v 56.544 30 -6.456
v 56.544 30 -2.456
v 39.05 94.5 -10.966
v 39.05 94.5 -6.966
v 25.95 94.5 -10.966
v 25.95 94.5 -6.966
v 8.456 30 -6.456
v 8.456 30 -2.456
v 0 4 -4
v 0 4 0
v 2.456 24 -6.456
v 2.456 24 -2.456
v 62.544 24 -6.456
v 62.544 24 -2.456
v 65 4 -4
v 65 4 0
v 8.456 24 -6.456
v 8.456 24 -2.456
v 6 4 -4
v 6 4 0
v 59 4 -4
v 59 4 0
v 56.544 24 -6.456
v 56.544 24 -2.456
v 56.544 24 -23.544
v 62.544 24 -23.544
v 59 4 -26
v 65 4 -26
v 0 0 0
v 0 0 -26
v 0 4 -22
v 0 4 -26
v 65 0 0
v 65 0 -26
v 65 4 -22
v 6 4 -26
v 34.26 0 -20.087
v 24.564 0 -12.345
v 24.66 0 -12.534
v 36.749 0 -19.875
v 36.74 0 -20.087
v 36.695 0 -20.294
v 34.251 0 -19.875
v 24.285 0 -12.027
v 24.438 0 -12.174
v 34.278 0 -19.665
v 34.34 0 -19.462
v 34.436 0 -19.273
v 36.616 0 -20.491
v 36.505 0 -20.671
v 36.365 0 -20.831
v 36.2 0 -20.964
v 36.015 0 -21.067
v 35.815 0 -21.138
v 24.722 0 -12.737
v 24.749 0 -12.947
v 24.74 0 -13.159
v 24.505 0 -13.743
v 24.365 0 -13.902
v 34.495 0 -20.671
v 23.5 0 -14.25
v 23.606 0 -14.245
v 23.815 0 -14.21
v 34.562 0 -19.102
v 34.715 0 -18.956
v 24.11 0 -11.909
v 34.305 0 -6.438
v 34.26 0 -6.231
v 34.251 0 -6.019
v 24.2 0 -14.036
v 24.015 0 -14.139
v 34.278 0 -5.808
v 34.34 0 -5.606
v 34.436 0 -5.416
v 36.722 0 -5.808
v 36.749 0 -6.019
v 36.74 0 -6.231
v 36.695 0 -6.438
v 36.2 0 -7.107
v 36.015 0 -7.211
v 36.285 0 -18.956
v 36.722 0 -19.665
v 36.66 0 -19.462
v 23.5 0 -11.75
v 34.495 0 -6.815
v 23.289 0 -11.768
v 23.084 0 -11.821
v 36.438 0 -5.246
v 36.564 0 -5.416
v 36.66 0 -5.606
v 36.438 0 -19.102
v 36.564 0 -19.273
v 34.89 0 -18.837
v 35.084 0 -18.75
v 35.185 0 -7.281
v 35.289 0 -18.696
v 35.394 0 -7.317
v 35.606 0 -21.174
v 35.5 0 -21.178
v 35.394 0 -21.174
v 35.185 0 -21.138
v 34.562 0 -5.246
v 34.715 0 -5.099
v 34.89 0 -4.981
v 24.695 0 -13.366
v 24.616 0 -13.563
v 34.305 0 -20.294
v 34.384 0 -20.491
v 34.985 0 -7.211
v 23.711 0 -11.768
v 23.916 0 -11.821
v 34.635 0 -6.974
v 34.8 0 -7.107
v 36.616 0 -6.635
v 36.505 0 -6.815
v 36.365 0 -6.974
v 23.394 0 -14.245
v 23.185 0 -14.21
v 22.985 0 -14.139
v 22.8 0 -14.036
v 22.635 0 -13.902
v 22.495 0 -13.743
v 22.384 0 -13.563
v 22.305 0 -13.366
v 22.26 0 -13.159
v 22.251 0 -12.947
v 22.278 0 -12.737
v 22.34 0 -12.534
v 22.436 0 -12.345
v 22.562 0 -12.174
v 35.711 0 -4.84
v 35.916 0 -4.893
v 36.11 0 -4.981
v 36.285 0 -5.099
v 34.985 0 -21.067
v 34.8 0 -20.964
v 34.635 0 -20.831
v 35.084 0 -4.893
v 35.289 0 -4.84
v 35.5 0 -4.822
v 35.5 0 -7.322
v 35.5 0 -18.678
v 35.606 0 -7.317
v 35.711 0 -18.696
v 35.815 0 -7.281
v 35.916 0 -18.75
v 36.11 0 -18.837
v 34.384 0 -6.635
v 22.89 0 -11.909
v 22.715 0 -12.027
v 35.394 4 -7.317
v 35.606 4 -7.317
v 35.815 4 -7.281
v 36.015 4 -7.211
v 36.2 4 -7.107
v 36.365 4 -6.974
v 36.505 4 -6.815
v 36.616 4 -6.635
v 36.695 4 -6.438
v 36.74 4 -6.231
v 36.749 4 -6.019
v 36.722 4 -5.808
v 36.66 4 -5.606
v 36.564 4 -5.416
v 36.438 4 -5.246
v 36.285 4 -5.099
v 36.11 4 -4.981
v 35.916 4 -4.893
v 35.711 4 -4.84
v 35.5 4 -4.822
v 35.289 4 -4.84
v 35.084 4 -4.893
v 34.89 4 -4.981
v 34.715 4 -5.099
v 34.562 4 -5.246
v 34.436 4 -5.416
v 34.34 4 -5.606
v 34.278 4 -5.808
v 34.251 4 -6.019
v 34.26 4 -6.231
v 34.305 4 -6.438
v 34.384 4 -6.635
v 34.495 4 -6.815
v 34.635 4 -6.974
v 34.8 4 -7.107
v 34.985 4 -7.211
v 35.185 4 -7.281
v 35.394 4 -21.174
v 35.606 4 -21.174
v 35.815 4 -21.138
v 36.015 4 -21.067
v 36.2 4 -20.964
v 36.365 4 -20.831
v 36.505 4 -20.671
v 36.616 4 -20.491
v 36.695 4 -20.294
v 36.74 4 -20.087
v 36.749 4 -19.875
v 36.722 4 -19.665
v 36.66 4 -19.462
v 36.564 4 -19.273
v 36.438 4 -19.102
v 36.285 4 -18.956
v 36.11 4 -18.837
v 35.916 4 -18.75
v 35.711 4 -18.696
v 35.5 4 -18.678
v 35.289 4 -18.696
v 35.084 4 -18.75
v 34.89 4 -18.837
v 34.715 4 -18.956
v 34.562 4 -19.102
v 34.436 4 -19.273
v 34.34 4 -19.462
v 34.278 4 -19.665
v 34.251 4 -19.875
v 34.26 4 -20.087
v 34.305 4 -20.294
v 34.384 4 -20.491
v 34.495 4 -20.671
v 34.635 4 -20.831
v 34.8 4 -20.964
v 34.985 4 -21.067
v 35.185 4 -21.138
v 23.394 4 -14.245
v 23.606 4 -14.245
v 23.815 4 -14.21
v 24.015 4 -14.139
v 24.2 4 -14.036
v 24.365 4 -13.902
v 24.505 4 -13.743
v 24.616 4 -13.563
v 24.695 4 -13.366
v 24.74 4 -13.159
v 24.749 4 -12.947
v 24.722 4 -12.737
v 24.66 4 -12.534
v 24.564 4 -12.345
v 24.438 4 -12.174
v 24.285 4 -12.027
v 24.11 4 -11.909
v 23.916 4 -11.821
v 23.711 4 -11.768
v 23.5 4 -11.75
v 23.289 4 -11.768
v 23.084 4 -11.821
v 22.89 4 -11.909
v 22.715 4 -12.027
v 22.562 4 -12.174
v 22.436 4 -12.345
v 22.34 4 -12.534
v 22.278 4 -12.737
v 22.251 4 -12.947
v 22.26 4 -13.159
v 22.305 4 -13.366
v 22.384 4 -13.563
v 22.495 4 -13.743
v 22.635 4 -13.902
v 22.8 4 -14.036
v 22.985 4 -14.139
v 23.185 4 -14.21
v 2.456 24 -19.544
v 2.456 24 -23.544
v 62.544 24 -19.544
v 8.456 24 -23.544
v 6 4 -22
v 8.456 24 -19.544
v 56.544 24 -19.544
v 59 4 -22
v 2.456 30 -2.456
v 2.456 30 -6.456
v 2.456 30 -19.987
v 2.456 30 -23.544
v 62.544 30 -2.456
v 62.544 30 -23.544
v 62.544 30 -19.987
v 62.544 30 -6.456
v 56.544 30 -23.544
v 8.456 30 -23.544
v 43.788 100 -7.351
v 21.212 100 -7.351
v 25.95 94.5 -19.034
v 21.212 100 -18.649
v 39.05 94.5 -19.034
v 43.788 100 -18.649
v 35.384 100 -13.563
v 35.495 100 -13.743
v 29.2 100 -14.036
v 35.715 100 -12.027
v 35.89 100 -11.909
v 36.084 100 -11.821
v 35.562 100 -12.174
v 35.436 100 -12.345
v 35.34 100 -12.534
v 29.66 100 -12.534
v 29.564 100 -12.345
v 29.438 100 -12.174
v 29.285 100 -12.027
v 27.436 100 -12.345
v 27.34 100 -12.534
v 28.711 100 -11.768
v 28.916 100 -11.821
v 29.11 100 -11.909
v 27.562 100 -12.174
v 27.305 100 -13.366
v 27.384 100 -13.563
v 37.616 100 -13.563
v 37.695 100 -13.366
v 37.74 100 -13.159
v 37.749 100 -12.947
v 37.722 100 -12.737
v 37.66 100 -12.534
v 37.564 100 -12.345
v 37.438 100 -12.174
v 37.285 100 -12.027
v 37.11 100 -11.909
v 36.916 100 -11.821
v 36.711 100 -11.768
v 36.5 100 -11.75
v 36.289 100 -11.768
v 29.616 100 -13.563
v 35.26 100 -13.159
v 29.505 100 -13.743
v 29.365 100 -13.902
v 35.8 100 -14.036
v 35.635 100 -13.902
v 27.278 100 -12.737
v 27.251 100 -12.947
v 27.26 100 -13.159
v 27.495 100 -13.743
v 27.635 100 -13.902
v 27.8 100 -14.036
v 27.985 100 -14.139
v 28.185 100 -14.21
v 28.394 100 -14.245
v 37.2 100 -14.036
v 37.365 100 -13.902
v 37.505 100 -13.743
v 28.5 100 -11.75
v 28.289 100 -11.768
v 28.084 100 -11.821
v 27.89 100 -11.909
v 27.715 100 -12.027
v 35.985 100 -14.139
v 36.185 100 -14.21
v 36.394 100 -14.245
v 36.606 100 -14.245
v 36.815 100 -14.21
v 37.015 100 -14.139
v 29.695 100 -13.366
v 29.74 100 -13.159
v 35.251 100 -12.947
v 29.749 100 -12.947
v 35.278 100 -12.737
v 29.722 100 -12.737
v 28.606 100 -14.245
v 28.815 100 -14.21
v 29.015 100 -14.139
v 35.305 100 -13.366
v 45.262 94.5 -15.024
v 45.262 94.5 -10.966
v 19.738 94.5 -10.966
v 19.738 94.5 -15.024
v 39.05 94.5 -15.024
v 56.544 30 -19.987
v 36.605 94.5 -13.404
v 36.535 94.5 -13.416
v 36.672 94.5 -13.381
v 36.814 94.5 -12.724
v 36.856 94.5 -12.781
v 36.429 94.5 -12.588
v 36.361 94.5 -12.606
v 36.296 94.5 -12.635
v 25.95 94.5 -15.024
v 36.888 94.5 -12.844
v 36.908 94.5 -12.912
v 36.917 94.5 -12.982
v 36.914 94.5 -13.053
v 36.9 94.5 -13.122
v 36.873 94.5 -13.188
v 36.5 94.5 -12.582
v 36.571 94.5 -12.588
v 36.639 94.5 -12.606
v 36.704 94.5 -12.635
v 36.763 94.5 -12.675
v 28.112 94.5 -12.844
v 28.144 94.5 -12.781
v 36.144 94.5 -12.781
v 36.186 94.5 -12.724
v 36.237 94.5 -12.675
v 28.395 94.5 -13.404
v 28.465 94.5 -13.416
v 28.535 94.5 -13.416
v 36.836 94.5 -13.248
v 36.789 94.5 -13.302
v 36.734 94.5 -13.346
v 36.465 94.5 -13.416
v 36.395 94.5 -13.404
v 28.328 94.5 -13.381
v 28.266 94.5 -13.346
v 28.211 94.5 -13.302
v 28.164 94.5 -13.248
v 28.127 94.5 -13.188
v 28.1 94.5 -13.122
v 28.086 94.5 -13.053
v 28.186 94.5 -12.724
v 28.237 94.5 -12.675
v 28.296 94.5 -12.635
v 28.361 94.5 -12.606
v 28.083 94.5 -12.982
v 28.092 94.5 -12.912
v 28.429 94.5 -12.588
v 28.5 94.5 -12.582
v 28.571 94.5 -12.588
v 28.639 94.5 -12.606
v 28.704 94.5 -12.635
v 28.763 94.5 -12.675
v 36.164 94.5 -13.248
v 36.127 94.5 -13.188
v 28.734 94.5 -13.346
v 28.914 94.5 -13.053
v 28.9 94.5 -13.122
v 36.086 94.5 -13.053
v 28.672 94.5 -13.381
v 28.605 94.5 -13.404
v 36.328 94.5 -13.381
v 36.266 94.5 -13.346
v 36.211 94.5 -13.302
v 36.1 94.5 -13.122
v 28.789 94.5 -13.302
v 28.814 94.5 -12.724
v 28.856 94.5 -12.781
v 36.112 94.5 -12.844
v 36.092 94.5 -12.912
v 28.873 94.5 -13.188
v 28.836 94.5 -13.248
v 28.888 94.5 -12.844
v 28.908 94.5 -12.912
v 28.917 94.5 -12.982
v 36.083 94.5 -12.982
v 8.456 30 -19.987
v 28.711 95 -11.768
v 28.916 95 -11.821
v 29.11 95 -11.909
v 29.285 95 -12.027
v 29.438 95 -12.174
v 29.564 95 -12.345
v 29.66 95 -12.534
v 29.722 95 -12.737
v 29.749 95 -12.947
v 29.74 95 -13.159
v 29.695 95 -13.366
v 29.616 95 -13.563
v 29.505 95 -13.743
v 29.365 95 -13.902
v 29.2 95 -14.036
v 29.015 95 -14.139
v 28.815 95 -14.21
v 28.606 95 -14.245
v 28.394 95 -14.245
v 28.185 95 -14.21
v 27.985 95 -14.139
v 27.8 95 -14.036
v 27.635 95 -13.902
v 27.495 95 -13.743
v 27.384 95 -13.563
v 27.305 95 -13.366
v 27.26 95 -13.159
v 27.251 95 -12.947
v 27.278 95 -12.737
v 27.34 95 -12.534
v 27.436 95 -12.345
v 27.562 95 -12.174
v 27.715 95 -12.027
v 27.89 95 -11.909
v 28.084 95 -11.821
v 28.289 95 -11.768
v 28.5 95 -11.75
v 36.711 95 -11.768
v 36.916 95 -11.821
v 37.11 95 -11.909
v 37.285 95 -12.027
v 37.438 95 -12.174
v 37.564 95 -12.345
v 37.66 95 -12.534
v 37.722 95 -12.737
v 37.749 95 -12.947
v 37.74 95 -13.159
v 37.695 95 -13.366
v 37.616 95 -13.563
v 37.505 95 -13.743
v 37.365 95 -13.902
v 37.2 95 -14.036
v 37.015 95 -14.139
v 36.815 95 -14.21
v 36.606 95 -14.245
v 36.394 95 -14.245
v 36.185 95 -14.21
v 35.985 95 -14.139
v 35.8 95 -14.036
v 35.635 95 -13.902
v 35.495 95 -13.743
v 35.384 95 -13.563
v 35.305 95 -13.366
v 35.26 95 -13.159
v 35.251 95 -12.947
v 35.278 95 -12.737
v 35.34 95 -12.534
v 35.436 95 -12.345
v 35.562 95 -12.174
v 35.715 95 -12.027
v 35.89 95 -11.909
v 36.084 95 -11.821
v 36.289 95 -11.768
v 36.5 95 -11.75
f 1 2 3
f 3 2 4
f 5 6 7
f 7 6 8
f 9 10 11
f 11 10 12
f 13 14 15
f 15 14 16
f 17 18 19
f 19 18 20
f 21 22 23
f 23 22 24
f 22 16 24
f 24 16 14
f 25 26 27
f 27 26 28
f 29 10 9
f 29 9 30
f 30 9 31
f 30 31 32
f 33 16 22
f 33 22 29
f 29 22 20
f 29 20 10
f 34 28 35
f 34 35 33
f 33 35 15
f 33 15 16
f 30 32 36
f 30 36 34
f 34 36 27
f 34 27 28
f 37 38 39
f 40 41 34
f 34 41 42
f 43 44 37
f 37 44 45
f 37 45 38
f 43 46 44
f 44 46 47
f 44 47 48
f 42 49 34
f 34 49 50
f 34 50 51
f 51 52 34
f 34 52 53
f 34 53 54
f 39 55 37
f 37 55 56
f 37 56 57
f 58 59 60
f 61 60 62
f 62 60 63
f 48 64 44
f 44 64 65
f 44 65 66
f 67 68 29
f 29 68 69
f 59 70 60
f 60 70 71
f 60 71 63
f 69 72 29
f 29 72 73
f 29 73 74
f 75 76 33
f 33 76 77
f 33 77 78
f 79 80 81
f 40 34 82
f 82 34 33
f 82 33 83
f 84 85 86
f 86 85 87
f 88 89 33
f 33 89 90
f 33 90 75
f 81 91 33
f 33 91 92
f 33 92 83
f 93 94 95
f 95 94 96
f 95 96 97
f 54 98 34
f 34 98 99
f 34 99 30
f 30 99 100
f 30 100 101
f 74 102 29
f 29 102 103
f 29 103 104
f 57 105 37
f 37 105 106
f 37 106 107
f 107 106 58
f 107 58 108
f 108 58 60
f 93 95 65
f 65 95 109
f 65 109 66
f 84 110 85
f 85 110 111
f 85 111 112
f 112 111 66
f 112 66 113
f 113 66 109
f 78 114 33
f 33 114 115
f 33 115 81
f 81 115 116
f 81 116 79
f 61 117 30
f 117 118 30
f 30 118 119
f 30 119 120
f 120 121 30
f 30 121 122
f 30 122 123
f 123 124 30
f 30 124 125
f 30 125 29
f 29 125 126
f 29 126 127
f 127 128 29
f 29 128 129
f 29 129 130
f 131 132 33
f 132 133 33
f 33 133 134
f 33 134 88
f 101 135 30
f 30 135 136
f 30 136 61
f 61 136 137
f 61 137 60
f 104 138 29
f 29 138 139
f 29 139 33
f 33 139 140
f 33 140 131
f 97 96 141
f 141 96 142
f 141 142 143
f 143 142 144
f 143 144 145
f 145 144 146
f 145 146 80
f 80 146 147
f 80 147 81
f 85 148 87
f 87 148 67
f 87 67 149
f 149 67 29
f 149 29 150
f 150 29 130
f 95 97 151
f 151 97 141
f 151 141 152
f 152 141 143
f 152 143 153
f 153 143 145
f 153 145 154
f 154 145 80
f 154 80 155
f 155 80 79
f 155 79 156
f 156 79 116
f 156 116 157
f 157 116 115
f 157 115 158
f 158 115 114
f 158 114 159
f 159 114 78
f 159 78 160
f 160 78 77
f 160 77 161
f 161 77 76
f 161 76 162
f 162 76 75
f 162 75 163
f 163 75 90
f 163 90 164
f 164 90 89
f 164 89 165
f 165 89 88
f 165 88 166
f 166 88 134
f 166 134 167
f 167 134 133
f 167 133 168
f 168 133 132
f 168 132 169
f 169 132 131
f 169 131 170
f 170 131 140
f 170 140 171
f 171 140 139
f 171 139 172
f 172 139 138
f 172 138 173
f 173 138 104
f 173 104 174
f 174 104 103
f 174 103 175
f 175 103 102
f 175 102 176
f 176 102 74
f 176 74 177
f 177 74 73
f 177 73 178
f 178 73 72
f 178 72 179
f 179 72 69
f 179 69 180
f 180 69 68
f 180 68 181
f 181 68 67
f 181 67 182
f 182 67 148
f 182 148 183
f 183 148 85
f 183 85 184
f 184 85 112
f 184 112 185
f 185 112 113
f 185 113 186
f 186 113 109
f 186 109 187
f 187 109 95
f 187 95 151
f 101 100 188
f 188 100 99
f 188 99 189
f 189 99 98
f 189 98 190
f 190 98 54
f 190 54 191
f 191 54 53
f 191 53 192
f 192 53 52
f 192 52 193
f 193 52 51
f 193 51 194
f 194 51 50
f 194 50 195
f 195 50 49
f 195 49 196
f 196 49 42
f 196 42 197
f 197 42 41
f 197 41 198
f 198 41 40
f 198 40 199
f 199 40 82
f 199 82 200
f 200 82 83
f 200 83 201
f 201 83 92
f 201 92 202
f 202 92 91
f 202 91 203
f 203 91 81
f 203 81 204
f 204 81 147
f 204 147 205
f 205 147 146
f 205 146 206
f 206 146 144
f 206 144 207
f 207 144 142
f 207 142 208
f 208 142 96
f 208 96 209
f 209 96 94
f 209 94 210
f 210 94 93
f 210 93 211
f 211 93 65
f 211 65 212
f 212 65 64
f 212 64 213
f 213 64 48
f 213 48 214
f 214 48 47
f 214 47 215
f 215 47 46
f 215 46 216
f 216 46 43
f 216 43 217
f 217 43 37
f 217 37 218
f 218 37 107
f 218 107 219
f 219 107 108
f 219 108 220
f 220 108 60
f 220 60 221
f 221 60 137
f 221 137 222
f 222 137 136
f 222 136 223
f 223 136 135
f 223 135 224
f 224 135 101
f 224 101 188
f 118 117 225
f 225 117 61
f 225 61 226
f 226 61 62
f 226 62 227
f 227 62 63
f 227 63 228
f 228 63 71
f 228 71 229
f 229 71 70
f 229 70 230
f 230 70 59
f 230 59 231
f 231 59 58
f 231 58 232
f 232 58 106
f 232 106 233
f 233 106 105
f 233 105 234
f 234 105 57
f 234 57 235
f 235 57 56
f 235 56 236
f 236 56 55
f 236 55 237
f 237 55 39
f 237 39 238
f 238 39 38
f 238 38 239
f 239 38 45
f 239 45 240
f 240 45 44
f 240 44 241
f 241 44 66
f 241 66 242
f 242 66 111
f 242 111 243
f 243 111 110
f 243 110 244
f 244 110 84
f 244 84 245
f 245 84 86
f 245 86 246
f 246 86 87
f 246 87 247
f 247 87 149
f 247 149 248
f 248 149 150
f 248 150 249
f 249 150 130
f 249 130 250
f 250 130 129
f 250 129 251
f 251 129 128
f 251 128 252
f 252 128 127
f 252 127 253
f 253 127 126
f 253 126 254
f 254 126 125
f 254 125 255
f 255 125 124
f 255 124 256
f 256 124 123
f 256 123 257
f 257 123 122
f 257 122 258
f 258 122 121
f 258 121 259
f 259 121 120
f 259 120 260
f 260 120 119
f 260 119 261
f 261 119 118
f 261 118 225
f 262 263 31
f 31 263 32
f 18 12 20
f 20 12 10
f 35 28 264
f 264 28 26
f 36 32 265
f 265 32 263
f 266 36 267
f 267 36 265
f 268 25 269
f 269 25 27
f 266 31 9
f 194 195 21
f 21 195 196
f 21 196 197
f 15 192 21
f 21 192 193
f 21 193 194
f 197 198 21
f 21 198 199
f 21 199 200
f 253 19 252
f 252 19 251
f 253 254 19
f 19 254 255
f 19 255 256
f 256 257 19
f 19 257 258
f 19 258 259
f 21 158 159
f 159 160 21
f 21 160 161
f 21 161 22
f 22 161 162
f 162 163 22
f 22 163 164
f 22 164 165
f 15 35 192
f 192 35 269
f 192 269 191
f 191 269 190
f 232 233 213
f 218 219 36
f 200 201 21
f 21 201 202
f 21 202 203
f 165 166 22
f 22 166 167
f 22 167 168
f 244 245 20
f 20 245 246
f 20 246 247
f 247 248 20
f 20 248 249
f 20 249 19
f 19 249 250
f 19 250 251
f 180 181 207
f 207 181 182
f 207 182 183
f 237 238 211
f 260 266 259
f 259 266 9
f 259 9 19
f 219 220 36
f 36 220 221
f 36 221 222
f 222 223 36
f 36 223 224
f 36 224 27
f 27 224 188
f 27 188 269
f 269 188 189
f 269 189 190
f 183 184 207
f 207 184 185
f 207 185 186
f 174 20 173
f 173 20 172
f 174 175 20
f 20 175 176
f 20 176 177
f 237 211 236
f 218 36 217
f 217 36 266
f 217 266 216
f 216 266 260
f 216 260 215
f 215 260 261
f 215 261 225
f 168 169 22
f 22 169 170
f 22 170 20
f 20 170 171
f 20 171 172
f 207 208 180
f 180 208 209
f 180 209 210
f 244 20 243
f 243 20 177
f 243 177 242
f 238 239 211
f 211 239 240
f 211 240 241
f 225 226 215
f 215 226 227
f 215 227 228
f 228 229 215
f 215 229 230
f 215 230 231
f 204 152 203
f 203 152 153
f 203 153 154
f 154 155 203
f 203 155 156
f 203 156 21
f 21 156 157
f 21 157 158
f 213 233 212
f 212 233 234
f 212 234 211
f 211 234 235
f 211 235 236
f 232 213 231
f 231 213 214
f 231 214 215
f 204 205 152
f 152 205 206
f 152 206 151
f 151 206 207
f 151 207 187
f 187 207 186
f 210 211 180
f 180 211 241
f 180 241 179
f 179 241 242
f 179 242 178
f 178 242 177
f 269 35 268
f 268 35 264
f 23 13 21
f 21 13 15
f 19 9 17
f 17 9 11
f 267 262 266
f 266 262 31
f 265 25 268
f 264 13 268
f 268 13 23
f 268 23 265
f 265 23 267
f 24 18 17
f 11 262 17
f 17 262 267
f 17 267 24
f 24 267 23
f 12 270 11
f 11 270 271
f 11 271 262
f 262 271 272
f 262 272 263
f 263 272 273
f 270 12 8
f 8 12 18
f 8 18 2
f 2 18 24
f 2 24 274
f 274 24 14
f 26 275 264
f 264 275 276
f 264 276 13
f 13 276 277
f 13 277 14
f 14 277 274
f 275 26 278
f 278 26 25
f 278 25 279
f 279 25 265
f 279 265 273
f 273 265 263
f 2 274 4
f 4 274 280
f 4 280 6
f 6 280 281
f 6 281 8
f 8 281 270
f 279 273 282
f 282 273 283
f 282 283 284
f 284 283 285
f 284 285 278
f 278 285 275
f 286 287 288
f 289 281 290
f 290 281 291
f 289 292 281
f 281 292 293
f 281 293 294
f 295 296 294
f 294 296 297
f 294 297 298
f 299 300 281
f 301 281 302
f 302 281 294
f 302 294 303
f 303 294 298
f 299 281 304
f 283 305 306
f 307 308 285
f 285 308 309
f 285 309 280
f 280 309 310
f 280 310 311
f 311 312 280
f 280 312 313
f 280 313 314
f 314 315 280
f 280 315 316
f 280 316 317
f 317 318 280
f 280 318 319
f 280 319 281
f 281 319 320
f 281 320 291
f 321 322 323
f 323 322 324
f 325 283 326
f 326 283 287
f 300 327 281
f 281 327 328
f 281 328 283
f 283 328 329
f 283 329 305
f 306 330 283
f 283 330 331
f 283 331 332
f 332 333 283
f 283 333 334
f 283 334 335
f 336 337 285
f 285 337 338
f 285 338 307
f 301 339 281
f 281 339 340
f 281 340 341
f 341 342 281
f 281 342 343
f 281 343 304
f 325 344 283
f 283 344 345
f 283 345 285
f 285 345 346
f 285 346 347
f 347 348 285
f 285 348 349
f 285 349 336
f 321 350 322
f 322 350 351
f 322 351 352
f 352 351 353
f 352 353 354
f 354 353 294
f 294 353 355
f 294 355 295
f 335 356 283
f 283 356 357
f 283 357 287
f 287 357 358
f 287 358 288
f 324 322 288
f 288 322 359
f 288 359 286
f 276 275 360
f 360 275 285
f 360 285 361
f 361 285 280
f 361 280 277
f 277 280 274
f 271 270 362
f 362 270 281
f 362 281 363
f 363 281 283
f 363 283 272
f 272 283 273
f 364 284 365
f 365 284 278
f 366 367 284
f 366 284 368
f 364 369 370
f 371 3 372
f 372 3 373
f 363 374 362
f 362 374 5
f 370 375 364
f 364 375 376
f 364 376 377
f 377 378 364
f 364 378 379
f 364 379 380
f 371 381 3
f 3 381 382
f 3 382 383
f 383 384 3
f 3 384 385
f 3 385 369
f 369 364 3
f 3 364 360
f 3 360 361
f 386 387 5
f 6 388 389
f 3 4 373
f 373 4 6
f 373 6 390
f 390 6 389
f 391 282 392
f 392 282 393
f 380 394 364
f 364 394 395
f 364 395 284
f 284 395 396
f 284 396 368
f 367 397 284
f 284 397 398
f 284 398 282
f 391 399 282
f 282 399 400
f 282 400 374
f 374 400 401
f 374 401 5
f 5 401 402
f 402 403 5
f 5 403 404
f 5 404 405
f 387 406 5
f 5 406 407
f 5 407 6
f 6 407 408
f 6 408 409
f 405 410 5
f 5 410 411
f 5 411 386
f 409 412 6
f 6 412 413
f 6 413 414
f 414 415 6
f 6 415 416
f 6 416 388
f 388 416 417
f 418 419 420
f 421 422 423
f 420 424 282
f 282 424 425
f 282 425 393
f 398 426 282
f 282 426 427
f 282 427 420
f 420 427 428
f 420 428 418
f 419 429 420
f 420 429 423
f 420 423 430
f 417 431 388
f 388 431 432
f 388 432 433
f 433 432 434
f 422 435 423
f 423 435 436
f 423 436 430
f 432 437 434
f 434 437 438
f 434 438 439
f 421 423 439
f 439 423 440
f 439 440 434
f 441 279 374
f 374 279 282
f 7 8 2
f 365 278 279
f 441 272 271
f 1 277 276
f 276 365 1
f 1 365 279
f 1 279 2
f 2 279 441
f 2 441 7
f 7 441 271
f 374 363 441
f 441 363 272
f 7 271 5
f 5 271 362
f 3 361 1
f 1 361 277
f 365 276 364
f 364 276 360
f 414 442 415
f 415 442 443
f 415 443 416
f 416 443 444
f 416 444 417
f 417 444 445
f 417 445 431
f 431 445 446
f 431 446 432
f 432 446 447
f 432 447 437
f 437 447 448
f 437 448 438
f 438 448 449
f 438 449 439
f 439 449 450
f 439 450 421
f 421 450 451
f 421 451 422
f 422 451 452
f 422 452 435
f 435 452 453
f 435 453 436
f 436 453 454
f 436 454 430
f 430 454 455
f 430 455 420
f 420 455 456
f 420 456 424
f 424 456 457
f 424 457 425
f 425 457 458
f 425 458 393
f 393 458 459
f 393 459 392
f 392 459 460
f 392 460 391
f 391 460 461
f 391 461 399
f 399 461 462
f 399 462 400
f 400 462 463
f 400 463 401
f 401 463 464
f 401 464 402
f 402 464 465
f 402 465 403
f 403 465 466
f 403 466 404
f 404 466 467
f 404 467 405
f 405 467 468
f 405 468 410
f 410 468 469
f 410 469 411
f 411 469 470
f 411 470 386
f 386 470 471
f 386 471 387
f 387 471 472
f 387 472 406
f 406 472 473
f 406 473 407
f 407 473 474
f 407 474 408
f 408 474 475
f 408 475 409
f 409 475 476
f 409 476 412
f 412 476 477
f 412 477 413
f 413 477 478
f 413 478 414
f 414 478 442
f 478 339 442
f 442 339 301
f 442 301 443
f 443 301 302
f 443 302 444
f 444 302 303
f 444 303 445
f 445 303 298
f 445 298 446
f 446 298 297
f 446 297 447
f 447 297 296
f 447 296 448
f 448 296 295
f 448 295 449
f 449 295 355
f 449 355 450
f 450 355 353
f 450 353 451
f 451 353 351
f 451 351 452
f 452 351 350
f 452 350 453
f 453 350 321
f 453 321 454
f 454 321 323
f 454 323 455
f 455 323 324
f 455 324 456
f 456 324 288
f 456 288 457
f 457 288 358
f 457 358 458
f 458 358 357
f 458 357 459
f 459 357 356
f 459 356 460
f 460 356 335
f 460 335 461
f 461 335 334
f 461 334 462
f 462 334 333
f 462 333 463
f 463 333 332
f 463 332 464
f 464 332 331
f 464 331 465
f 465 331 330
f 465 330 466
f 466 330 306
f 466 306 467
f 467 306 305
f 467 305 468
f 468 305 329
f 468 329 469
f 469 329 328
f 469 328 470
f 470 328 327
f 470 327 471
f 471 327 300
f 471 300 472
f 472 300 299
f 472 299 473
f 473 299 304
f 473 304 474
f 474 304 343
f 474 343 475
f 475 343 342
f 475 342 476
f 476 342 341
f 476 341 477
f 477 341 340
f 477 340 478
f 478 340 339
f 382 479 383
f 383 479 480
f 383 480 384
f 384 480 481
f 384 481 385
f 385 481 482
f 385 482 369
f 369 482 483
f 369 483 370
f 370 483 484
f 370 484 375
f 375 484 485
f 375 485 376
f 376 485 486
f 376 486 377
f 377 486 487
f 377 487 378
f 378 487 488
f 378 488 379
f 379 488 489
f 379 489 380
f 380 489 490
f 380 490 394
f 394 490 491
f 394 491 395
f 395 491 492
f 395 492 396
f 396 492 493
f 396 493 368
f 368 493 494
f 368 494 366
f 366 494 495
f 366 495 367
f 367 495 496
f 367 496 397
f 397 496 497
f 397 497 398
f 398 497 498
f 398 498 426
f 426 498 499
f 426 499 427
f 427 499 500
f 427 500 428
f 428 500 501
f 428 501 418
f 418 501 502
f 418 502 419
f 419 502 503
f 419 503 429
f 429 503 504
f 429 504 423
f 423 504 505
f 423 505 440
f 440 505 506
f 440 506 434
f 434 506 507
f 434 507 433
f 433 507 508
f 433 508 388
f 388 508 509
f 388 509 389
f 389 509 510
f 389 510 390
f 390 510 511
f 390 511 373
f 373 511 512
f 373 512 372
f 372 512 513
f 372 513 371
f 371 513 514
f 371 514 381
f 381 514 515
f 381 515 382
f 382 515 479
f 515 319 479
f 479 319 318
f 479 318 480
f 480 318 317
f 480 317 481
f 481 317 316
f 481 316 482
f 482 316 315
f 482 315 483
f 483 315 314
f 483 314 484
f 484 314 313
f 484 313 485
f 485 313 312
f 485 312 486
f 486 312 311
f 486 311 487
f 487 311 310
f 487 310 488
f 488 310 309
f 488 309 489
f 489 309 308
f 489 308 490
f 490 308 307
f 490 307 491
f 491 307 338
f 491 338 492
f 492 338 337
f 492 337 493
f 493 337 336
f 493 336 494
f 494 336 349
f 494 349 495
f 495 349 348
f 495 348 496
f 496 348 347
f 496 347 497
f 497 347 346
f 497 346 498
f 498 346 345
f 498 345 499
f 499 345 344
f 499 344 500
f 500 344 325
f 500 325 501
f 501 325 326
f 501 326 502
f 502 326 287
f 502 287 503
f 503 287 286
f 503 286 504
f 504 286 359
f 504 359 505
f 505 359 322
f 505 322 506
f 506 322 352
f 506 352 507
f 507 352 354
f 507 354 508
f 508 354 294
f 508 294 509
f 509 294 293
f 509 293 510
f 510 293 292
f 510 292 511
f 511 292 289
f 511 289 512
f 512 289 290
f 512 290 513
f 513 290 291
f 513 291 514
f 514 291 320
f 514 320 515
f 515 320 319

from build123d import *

# Parameters (mm, degrees)
SKETCH1_W                 = 65
SKETCH1_H                 = 26
BOSS_EXTRUDE1_DEPTH       = 4
F_2_5MM_DOWEL_HOLE1_D     = 2.5
F_2_5MM_DOWEL_HOLE1_DEPTH = 5
F_2_5MM_DOWEL_HOLE1_TIP   = 0.751075774
SKETCH6_W                 = 65
SKETCH6_H                 = 26
BOSS_EXTRUDE2_DEPTH       = 20
BOSS_EXTRUDE2_TAPER       = 7
SKETCH7_W                 = 48.088617564
SKETCH7_H                 = 13.088617564
CUT_EXTRUDE1_DEPTH        = 20
CUT_EXTRUDE1_DRAFT        = 7
CUT_EXTRUDE3_DEPTH        = 33
CUT_EXTRUDE4_DEPTH        = 70
SKETCH11_W                = 60.088617564
SKETCH11_H                = 21.088617564
BOSS_EXTRUDE3_DEPTH       = 6
SKETCH12_W                = 60.088617564
SKETCH12_H                = 21.088617564
BOSS_EXTRUDE5_DEPTH       = 70
BOSS_EXTRUDE5_TAPER       = 4
CUT_EXTRUDE5_DEPTH        = 55
CUT_EXTRUDE6_DEPTH        = 67
F_2_5MM_DOWEL_HOLE2_D     = 2.5
F_2_5MM_DOWEL_HOLE2_DEPTH = 5
F_2_5MM_DOWEL_HOLE2_TIP   = 0.751075774


with BuildPart() as part:
    # Sketch1 → Boss-Extrude1 (new body)
    with BuildSketch(Plane(origin=(0, 0, 0), x_dir=(1, 0, 0), z_dir=(0, 1, 0))):
        with Locations((32.5, 13)):
            Rectangle(SKETCH1_W, SKETCH1_H)
    extrude(amount=BOSS_EXTRUDE1_DEPTH)

    # Ø2.5mm Dowel Hole1
    with Locations(Plane(origin=(23.5, 4, -13), x_dir=(0, 0, 1), z_dir=(0, 1, 0))):
        with Locations((0, 0), (-6.92820323, 12), (6.92820323, 12)):
            Hole(F_2_5MM_DOWEL_HOLE1_D / 2, depth=F_2_5MM_DOWEL_HOLE1_DEPTH)
            with Locations((0, 0, -(F_2_5MM_DOWEL_HOLE1_DEPTH + F_2_5MM_DOWEL_HOLE1_TIP / 2))):  # 118° drill point
                Cone(0, F_2_5MM_DOWEL_HOLE1_D / 2, F_2_5MM_DOWEL_HOLE1_TIP, mode=Mode.SUBTRACT)

    # Sketch6 → Boss-Extrude2 (add)
    with BuildSketch(Plane(origin=(0, 4, 0), x_dir=(1, 0, 0), z_dir=(0, 1, 0))):
        with Locations((32.5, 13)):
            Rectangle(SKETCH6_W, SKETCH6_H)
    extrude(amount=BOSS_EXTRUDE2_DEPTH, taper=BOSS_EXTRUDE2_TAPER)


with BuildPart() as cut_extrude1_tool:
    # Sketch7 → Cut-Extrude1 (with draft: the straight prism first)
    with BuildSketch(Plane(origin=(0, 24, 0), x_dir=(1, 0, 0), z_dir=(0, 1, 0))):
        with Locations((32.5, 13)):
            Rectangle(SKETCH7_W, SKETCH7_H)
    extrude(amount=-CUT_EXTRUDE1_DEPTH)
    # Cut-Extrude1: the draft: its side faces are tilted about the plane it starts from
    cut_extrude1_sides = [cut_extrude1_tool.faces().sort_by_distance(p)[0] for p in [
        (8.455691218, 14, -13),
        (32.5, 14, -6.455691218),
        (56.544308782, 14, -13),
        (32.5, 14, -19.544308782),
    ]]
    draft(cut_extrude1_sides, Plane(origin=(0, 24, 0), x_dir=(1, 0, 0), z_dir=(0, 1, 0)), CUT_EXTRUDE1_DRAFT)


with BuildPart() as part_1:
    add(part.part)

    # Cut-Extrude1: cut by cut_extrude1_tool
    add(cut_extrude1_tool.part, mode=Mode.SUBTRACT)

    # Sketch9 → Cut-Extrude3 (cut)
    with BuildSketch(Plane(origin=(0, 0, -26), x_dir=(-1, 0, 0), z_dir=(0, 0, -1))):
        Polygon((-59, 4), (-6, 4), (-8.455691218, 24), (-56.544308782, 24), align=None)
    extrude(amount=-CUT_EXTRUDE3_DEPTH, mode=Mode.SUBTRACT)

    # Sketch10 → Cut-Extrude4 (cut)
    with BuildSketch(Plane(origin=(65, 0, 0), x_dir=(0, 0, -1), z_dir=(1, 0, 0))):
        Polygon((4, 4), (22, 4), (19.544308782, 24), (6.455691218, 24), align=None)
    extrude(amount=-CUT_EXTRUDE4_DEPTH, mode=Mode.SUBTRACT)

    # Sketch11 → Boss-Extrude3 (add)
    with BuildSketch(Plane(origin=(0, 24, 0), x_dir=(1, 0, 0), z_dir=(0, 1, 0))):
        with Locations((32.5, 13)):
            Rectangle(SKETCH11_W, SKETCH11_H)
    extrude(amount=BOSS_EXTRUDE3_DEPTH)

    # Sketch12 → Boss-Extrude5 (add)
    with BuildSketch(Plane(origin=(0, 30, 0), x_dir=(1, 0, 0), z_dir=(0, 1, 0))):
        with Locations((32.5, 13)):
            Rectangle(SKETCH12_W, SKETCH12_H)
    extrude(amount=BOSS_EXTRUDE5_DEPTH, taper=BOSS_EXTRUDE5_TAPER)

    # Sketch13 → Cut-Extrude5 (cut)
    with BuildSketch(Plane(origin=(0, 0, -23.544308782), x_dir=(-1, 0, 0), z_dir=(0, 0, -1))):
        Polygon((-62.544308782, 30), (-43.787865312, 100), (-62.544308782, 100), align=None)
        Polygon((-2.455691218, 30), (-21.212134688, 100), (-2.455691218, 100), align=None)
        Polygon((-39.049928788, 94.5), (-25.950071212, 94.5), (-8.455691218, 30), (-56.544308782, 30), align=None)
    extrude(amount=-CUT_EXTRUDE5_DEPTH, mode=Mode.SUBTRACT)

    # Sketch14 → Cut-Extrude6 (cut)
    with BuildSketch(Plane(origin=(62.544308782, 0, 0), x_dir=(0, 0, -1), z_dir=(1, 0, 0))):
        Polygon((6.455691218, 30), (19.986565131, 30), (15.024261819, 94.5), (10.965970588, 94.5), align=None)
    extrude(amount=-CUT_EXTRUDE6_DEPTH, mode=Mode.SUBTRACT)

    # Ø2.5mm Dowel Hole2
    with Locations(Plane(origin=(0, 100, 0), x_dir=(1, 0, 0), z_dir=(0, 1, 0))):
        with Locations((28.5, 13), (36.5, 13)):
            Hole(F_2_5MM_DOWEL_HOLE2_D / 2, depth=F_2_5MM_DOWEL_HOLE2_DEPTH)
            with Locations((0, 0, -(F_2_5MM_DOWEL_HOLE2_DEPTH + F_2_5MM_DOWEL_HOLE2_TIP / 2))):  # 118° drill point
                Cone(0, F_2_5MM_DOWEL_HOLE2_D / 2, F_2_5MM_DOWEL_HOLE2_TIP, mode=Mode.SUBTRACT)


solid = part_1.part
